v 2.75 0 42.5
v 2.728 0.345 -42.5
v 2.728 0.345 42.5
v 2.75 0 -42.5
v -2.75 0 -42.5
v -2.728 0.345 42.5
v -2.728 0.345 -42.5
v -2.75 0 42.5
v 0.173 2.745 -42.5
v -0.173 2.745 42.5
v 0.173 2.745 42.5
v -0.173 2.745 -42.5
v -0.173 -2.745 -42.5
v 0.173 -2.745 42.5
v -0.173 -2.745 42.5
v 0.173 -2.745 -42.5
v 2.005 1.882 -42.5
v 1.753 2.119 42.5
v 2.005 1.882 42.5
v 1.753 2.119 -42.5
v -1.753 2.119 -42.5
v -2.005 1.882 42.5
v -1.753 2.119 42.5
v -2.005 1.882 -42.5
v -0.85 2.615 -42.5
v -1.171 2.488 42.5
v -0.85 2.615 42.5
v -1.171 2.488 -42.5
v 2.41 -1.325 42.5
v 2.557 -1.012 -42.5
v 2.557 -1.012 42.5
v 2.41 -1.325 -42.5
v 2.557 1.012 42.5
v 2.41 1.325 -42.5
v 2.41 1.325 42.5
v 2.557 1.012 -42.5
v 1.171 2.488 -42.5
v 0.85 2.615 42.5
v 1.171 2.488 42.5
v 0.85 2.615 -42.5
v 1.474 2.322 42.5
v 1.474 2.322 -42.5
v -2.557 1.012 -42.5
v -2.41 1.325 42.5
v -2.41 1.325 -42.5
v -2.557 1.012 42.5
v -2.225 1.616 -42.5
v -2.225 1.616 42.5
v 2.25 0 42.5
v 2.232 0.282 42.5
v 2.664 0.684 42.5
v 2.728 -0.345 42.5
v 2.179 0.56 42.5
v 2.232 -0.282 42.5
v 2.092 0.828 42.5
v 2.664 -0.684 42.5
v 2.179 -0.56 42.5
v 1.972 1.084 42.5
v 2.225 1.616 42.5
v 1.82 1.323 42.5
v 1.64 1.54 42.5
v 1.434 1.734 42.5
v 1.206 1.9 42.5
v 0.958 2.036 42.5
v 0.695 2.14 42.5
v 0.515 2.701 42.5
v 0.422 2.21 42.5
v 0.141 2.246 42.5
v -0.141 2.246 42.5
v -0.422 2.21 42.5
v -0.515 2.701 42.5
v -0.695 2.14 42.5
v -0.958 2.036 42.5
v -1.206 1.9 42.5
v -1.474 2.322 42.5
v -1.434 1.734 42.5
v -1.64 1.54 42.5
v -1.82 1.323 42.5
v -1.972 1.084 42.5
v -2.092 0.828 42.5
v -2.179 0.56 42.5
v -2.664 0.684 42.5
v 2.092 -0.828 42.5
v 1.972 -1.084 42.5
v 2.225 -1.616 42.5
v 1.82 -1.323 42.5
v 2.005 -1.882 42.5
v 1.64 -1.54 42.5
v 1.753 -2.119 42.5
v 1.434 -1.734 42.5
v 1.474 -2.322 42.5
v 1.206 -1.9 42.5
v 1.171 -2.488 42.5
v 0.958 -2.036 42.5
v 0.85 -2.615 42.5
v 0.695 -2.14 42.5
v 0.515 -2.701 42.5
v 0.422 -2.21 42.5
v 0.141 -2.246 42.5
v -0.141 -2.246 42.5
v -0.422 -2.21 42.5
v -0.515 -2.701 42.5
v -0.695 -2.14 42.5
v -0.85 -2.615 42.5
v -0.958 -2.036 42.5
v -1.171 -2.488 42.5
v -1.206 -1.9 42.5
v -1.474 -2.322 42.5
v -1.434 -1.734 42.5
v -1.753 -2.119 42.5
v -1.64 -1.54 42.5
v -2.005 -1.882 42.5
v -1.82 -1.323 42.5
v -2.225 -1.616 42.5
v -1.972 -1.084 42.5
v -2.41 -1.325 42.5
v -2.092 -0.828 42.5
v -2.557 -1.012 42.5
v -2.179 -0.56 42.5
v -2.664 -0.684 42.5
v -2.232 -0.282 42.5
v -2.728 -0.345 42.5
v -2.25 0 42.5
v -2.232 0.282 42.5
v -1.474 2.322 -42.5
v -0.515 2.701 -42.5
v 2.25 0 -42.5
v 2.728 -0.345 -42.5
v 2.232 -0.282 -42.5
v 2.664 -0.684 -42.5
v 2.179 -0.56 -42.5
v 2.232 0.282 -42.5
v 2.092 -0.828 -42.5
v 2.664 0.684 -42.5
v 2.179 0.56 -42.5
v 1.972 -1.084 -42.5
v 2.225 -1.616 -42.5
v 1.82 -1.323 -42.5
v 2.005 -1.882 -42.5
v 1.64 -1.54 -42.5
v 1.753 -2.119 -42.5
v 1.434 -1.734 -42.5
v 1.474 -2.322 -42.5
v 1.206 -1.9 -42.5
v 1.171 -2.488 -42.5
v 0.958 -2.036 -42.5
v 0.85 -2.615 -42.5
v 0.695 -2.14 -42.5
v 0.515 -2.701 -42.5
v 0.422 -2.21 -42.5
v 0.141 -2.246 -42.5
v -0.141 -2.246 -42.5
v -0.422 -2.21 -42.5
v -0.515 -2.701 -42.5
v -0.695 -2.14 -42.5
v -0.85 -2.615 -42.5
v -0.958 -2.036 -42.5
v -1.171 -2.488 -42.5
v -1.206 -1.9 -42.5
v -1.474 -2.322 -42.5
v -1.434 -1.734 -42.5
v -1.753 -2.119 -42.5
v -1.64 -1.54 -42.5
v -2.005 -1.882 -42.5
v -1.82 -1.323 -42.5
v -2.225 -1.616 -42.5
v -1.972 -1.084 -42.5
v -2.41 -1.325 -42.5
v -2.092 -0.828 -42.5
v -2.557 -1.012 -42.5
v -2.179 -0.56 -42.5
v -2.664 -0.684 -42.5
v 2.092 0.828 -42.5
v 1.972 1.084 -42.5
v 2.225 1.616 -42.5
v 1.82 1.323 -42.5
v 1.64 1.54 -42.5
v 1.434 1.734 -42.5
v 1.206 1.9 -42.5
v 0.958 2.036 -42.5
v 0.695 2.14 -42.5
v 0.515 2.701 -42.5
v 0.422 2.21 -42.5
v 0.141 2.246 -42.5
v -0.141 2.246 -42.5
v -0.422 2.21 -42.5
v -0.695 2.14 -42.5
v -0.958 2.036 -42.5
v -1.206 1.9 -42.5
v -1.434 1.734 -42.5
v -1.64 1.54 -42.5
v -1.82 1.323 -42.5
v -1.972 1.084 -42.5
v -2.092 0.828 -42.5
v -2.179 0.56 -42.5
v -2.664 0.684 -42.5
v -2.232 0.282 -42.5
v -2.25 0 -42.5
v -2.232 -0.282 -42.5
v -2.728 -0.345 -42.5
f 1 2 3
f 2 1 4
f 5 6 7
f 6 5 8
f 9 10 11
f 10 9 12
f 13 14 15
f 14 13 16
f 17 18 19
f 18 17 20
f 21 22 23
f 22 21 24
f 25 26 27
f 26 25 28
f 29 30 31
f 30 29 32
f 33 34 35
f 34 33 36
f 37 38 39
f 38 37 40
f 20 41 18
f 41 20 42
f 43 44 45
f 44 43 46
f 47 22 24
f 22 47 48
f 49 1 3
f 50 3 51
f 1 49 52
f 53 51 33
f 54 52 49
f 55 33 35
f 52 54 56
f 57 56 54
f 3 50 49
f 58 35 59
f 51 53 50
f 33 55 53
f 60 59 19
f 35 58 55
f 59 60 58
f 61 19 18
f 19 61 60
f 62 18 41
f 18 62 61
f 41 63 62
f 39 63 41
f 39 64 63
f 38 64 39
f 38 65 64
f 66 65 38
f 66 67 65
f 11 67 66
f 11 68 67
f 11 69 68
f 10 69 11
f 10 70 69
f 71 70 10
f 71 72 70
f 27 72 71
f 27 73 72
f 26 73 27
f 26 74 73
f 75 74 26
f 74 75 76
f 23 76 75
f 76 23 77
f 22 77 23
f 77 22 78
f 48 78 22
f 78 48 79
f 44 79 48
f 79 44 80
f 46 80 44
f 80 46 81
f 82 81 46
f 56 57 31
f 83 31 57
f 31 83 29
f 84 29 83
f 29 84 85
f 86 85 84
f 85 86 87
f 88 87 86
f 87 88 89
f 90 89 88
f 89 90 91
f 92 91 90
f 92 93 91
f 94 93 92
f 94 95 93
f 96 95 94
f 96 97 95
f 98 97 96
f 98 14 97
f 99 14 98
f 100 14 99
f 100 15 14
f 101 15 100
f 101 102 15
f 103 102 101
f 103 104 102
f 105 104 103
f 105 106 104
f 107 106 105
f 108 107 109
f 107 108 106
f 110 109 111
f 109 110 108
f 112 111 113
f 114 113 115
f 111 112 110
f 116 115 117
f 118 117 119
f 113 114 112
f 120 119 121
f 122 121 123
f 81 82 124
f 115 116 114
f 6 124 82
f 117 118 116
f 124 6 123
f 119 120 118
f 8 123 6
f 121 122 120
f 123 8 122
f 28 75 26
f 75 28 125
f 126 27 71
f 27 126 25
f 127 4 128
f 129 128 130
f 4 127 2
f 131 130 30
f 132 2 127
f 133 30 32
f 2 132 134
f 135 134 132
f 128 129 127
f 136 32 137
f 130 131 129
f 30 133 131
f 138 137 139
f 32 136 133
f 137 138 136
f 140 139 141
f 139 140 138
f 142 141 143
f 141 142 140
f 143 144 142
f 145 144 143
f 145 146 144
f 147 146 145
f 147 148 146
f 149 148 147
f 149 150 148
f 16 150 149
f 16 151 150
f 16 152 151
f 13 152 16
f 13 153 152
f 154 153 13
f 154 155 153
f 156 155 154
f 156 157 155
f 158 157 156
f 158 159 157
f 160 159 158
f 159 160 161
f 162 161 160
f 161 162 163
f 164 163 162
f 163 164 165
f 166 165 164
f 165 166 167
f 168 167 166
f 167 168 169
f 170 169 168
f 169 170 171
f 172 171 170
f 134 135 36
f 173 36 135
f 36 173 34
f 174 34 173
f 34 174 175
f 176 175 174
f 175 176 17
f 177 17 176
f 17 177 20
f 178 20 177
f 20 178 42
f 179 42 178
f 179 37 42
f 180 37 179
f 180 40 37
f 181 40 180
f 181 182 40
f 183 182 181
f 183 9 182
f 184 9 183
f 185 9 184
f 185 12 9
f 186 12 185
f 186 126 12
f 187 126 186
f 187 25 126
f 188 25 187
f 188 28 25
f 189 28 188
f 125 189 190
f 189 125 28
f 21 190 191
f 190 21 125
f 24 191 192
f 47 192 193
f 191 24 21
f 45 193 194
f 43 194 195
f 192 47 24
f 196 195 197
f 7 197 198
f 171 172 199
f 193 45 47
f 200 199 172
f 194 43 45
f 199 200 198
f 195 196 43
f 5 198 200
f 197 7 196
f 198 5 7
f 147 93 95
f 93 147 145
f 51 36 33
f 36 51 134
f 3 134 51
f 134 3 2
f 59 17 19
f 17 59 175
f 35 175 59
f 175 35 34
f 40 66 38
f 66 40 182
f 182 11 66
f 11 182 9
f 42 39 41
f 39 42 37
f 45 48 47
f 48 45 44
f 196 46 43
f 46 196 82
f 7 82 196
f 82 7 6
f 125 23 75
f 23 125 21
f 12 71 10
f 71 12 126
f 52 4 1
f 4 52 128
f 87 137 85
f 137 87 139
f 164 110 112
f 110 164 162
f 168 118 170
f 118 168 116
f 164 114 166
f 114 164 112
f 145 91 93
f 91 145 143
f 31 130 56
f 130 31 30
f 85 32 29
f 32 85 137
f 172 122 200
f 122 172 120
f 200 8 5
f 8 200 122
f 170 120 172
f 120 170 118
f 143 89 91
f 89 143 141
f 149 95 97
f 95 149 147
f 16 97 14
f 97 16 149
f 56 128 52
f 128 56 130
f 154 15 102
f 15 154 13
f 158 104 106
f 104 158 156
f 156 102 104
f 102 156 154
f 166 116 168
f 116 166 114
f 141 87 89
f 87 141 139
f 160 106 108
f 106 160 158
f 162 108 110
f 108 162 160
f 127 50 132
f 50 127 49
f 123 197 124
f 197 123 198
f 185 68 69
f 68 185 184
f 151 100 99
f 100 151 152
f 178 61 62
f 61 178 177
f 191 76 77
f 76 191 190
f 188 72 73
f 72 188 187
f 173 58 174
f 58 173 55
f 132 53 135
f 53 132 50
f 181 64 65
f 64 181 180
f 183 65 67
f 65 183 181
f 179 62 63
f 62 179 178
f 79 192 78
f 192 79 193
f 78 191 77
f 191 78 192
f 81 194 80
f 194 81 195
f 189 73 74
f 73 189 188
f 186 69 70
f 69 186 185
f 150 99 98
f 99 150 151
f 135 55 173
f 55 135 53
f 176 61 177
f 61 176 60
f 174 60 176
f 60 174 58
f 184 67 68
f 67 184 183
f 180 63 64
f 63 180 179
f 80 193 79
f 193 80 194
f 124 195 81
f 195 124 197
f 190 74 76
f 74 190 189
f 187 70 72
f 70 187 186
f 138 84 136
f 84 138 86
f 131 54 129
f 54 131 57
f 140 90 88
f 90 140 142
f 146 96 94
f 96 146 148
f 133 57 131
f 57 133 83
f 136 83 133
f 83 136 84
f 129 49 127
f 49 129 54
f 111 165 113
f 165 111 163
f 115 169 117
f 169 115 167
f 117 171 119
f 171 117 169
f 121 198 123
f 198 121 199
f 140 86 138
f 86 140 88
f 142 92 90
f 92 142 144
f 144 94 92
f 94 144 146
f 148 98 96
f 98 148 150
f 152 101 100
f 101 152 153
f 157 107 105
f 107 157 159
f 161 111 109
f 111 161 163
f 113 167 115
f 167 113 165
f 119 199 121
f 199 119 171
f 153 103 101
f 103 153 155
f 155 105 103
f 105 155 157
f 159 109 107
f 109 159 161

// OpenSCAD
$fn = 50;


difference() {
	union() {
		translate(v = [0, 0, -42.5000000000]) {
			cylinder(h = 85, r = 2.7500000000);
		}
	}
	union() {
		translate(v = [0, 0, -100.0000000000]) {
			cylinder(h = 200, r = 2.2500000000);
		}
	}
}
